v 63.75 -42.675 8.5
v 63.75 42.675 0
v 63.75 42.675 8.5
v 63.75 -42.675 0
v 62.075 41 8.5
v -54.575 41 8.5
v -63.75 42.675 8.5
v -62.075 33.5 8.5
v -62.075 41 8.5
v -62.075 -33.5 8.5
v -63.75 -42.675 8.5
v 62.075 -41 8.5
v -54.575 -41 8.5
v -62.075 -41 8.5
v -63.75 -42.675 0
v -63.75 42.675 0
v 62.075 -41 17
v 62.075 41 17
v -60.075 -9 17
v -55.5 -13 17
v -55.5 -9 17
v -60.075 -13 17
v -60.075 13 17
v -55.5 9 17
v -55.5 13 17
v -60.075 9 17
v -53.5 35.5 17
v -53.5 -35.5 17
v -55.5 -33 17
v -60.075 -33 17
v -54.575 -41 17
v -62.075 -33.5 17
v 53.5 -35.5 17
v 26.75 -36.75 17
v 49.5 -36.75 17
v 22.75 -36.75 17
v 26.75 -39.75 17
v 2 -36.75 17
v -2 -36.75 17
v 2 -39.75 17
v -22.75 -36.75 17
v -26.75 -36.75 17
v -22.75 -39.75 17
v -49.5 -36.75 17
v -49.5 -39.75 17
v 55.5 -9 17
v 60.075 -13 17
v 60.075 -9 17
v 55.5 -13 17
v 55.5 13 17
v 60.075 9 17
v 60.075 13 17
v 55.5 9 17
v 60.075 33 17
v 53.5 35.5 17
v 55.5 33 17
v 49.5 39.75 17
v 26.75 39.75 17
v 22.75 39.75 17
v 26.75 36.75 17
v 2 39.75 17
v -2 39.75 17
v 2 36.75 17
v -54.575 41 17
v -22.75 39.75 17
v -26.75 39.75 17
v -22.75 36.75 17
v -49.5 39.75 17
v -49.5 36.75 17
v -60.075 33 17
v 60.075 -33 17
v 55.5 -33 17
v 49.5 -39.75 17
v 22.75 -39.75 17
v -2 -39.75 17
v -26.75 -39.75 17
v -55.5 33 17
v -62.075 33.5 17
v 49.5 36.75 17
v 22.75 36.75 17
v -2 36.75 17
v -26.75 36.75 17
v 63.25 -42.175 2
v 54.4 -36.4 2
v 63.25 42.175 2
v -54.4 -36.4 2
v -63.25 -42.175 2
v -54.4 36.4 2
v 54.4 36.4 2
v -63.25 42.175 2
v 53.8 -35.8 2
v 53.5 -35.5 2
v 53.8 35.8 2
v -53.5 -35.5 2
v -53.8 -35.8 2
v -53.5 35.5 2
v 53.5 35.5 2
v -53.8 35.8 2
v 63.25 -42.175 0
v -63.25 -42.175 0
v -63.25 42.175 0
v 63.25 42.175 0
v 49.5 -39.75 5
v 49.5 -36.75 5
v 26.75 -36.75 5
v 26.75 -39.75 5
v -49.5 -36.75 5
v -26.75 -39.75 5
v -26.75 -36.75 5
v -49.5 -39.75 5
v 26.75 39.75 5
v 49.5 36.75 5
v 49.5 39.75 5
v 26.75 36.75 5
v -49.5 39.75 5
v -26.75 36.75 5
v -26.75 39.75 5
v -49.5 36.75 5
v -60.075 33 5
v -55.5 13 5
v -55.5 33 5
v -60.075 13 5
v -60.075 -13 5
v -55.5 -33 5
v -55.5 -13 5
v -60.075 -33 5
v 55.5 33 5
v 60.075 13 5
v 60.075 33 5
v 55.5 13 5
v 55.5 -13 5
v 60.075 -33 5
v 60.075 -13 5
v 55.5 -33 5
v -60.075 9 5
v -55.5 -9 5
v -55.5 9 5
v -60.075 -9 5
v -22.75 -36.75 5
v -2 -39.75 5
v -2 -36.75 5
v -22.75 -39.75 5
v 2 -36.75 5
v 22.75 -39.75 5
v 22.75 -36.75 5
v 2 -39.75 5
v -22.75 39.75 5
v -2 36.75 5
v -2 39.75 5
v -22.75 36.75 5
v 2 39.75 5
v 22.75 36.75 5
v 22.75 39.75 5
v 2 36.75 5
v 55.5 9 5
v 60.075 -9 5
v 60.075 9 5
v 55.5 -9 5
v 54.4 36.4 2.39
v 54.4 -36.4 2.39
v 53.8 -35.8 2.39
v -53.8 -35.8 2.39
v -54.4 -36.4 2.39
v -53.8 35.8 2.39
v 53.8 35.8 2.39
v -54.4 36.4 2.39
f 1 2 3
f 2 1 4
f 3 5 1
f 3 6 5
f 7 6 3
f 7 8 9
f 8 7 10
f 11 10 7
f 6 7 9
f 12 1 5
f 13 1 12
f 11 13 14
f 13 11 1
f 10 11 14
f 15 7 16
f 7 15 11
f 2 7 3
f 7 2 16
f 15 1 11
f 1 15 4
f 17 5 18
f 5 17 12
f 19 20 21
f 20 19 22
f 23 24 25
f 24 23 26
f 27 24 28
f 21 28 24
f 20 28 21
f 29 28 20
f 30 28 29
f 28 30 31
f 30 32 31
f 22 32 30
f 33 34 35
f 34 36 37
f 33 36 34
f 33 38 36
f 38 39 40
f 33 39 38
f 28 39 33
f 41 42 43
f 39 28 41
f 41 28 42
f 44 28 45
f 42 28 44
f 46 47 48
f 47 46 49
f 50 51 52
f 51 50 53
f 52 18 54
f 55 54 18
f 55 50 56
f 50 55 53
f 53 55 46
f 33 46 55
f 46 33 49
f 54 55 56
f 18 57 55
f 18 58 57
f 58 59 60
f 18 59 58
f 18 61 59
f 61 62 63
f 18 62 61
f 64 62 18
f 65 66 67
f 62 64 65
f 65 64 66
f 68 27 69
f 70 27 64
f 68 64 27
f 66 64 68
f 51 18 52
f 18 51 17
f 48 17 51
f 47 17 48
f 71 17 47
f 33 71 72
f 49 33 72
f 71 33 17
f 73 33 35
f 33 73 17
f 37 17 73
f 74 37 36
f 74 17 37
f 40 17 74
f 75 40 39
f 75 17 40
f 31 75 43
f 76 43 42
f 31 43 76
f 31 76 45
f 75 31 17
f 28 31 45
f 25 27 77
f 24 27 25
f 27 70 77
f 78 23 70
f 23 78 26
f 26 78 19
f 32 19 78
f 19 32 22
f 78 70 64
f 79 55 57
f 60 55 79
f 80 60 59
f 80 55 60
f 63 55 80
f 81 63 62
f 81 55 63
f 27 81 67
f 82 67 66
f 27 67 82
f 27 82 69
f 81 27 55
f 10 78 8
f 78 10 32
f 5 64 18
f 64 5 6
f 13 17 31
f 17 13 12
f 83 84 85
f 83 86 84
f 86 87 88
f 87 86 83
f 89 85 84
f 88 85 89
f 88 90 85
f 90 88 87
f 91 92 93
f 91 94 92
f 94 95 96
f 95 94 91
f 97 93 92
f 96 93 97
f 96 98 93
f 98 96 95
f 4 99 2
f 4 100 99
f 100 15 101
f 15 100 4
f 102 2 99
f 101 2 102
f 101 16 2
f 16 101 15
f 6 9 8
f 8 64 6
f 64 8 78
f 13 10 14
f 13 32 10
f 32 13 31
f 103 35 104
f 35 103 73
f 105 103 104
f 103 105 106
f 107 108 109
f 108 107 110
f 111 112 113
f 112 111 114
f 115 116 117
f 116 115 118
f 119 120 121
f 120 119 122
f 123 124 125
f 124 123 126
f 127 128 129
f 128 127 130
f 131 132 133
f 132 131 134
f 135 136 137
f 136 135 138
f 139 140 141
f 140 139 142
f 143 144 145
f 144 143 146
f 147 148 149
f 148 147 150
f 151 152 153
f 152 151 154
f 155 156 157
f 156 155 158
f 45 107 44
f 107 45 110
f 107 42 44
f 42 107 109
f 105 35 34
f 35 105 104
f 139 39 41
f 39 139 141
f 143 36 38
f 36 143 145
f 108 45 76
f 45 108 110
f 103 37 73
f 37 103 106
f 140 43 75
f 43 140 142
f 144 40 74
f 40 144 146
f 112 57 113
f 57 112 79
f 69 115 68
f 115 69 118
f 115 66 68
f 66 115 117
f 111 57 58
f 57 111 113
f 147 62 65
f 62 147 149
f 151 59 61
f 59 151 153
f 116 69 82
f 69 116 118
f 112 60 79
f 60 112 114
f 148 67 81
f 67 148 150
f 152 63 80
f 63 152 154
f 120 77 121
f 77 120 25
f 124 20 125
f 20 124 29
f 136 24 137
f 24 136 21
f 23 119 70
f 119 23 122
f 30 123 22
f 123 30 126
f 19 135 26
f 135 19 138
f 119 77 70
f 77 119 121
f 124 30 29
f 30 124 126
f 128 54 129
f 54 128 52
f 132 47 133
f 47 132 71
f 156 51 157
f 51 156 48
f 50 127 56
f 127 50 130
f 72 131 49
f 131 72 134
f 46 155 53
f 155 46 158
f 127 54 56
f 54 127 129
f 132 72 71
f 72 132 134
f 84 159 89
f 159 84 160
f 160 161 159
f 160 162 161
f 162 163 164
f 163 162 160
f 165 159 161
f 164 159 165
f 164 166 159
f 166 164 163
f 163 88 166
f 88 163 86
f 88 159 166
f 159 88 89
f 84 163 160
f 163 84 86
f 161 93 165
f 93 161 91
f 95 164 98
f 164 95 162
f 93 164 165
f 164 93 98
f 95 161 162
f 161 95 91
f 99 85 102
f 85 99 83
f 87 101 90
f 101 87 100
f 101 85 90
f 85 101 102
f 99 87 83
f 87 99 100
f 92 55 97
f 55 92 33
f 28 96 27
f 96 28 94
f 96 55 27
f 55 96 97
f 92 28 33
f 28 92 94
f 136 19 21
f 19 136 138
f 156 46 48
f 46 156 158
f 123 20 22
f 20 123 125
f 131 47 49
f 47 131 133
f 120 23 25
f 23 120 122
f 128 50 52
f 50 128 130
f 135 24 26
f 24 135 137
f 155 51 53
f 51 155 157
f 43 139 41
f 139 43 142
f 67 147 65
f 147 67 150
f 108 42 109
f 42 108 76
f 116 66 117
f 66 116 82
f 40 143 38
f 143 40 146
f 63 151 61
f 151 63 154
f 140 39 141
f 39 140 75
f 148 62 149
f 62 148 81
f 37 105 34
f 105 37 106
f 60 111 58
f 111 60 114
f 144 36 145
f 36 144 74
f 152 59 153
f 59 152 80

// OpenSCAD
// Generated by SolidPython 1.1.3 on 2025-03-12 20:26:16


difference() {
	difference() {
		union() {
			translate(v = [0, 22.0000000000, 0]) {
				translate(v = [0, -33.0000000000, 11.0000000000]) {
					cube(center = true, size = [124.1500000000, 4, 12]);
				}
			}
			translate(v = [0, 44.0000000000, 0]) {
				translate(v = [0, -33.0000000000, 11.0000000000]) {
					cube(center = true, size = [124.1500000000, 4, 12]);
				}
			}
			translate(v = [24.7500000000, 0, 0]) {
				translate(v = [-49.5000000000, 0, 11.0000000000]) {
					cube(center = true, size = [4, 82, 12]);
				}
			}
			translate(v = [49.5000000000, 0, 0]) {
				translate(v = [-49.5000000000, 0, 11.0000000000]) {
					cube(center = true, size = [4, 82, 12]);
				}
			}
			translate(v = [74.2500000000, 0, 0]) {
				translate(v = [-49.5000000000, 0, 11.0000000000]) {
					cube(center = true, size = [4, 82, 12]);
				}
			}
			difference() {
				difference() {
					difference() {
						difference() {
							union() {
								difference() {
									union() {
										translate(v = [0, 0, 4.2500000000]) {
											cube(center = true, size = [127.5000000000, 85.3500000000, 8.5000000000]);
										}
										translate(v = [0, 0, 12.7500000000]) {
											cube(center = true, size = [124.1500000000, 82, 8.5000000000]);
										}
									}
									translate(v = [0, 0, 1.0000000000]) {
										cube(center = true, size = [127.5000000000, 85.3500000000, 2]);
									}
								}
								intersection() {
									difference() {
										translate(v = [0, 0, 1.0000000000]) {
											cube(center = true, size = [127.5000000000, 85.3500000000, 2]);
										}
										translate(v = [0, 0, 1.0000000000]) {
											cube(center = true, size = [126.5000000000, 84.3500000000, 2]);
										}
									}
									union() {
										translate(v = [-63.7500000000, 42.6750000000, 0]) {
											translate(v = [0, 0, 1.0000000000]) {
												cube(center = true, size = [127.5000000000, 85.3500000000, 2]);
											}
										}
										translate(v = [63.7500000000, 42.6750000000, 0]) {
											translate(v = [0, 0, 1.0000000000]) {
												cube(center = true, size = [127.5000000000, 85.3500000000, 2]);
											}
										}
										translate(v = [-63.7500000000, -42.6750000000, 0]) {
											translate(v = [0, 0, 1.0000000000]) {
												cube(center = true, size = [127.5000000000, 85.3500000000, 2]);
											}
										}
										translate(v = [63.7500000000, -42.6750000000, 0]) {
											translate(v = [0, 0, 1.0000000000]) {
												cube(center = true, size = [127.5000000000, 85.3500000000, 2]);
											}
										}
									}
								}
							}
							union() {
								translate(v = [-62.0750000000, 41.0000000000, 8.5000000000]) {
									translate(v = [0, -7.5000000000, 0]) {
										linear_extrude(height = 8.5000000000) {
											polygon(points = [[0, 0], [0, 7.5000000000], [0, 7.5000000000], [0, 7.5000000000], [7.5000000000, 7.5000000000], [7.5000000000, 7.5000000000]]);
										}
									}
								}
								translate(v = [-62.0750000000, -41.0000000000, 8.5000000000]) {
									translate(v = [7.5000000000, 0, 0]) {
										rotate(a = 90) {
											linear_extrude(height = 8.5000000000) {
												polygon(points = [[0, 0], [0, 7.5000000000], [0, 7.5000000000], [0, 7.5000000000], [7.5000000000, 7.5000000000], [7.5000000000, 7.5000000000]]);
											}
										}
									}
								}
							}
						}
						translate(v = [0, 0, 8.5000000000]) {
							cube(center = true, size = [107, 71, 17.0000000000]);
						}
					}
					union() {
						translate(v = [0, -38.2500000000, 0]) {
							translate(v = [0, 0, 11.0000000000]) {
								cube(center = true, size = [99, 3.0000000000, 12]);
							}
						}
						translate(v = [0, 38.2500000000, 0]) {
							translate(v = [0, 0, 11.0000000000]) {
								cube(center = true, size = [99, 3.0000000000, 12]);
							}
						}
						translate(v = [-57.7875000000, 0, 0]) {
							translate(v = [0, 0, 11.0000000000]) {
								cube(center = true, size = [4.5750000000, 66, 12]);
							}
						}
						translate(v = [57.7875000000, 0, 0]) {
							translate(v = [0, 0, 11.0000000000]) {
								cube(center = true, size = [4.5750000000, 66, 12]);
							}
						}
					}
				}
				union() {
					translate(v = [0, 0, 17.0000000000]) {
						cube(center = true, size = [115.5750000000, 66, 0]);
					}
					translate(v = [0, 0, 17.0000000000]) {
						cube(center = true, size = [99, 76.5000000000, 0]);
					}
				}
			}
		}
		translate(v = [0, 0, 8.5000000000]) {
			cube(center = true, size = [107, 71, 17.0000000000]);
		}
	}
	translate(v = [0, 0, 2.1900000000]) {
		difference() {
			cube(center = true, size = [108.8000000000, 72.8000000000, 0.4000000000]);
			cube(center = true, size = [107.6000000000, 71.6000000000, 0.4000000000]);
		}
	}
}
/***********************************************
*********      SolidPython code:      **********
************************************************
 
import solid
import numpy as np
import os.path as osp
import os
import math

"""
96-Well Plate with Reservoirs Generator
This script generates a 3D model of a 96-well plate with configurable reservoirs.
It uses solid-python to generate OpenSCAD code for 3D printing.
"""

def get_default_config():
    """
    Returns a dictionary containing default configuration parameters.
    
    Returns:
        dict: Default configuration parameters for the plate model
    """
    version = "print_hips"
    base_name = "96_well_plate_reservoirs_"+version
    config = {
        # Version and naming
        "version": version,
        "base_name": base_name,
        "base_path": osp.join("./plates/",base_name),
        
        # Basic plate dimensions
        "plate_size_outer": [127.5, 85.35],
        "plate_size_inner": [124.15, 82],
        "plate_height_outer": 8.5,
        "plate_height_inner": 8.5,
        "plate_under_depth": 2,
        "skirt_thickness": 1,
        
        # Corner dimensions
        "corner_x": 7.5,
        "corner_y": 7.5,
        
        # Grid configuration
        "grid_size": [1, 1],
        
        # Device dimensions
        "device_dims": [107, 71],
        
        # Reservoir configuration
        "reservoir_x_tol": 8,
        "reservoir_y_tol": 5,
        "reservoir_depth": 12,
        "reservoir_number_x": 3,
        "reservoir_number_y": 4,
        "reservoir_wall_thickness": 4,
        "lower_wall_height": 0,
        
        # Release holes configuration
        "release_holes": False,
        "release_radius": 2.5,
        
        # Groove configuration
        "groove_width": 0.6,  # Width of the groove (gw)
        "groove_depth": 0.4,  # Depth of the groove (gd)
        "gap_device": 0.3     # Distance from device slot to groove
    }
    
    # Derived values
    config["plate_height"] = config["plate_height_inner"] + config["plate_height_outer"]
    config["skirt_hole_dims"] = config["plate_size_outer"].copy()
    
    # Calculate reservoir dimensions based on device dimensions
    config["reservoir_dims_x"] = [
        config["device_dims"][0] - config["reservoir_x_tol"],
        (config["plate_size_inner"][1] - config["device_dims"][1] - config["reservoir_y_tol"]) / 2.0
    ]
    
    config["reservoir_dims_y"] = [
        (config["plate_size_inner"][0] - config["device_dims"][0] - config["reservoir_x_tol"]) / 2.0,
        config["device_dims"][1] - config["reservoir_y_tol"]
    ]
    
    return config

def save_model(model, base_path, base_name):
    """
    Saves the 3D model to an OpenSCAD file.
    
    Args:
        model: The solid-python 3D model
        base_path (str): Directory path to save the model
        base_name (str): Filename base for the model
    """
    if not osp.exists(base_path):
        os.makedirs(base_path)
    scad_path = osp.join(base_path, base_name + ".scad")
    solid.scad_render_to_file(model, osp.join(scad_path))

def center_unit_array(model, dims, grid_size):
    """
    Centers a unit array in the given grid.
    
    Args:
        model: The solid-python 3D model
        dims (list): Dimensions of the unit
        grid_size (list): Grid size [x, y]
        
    Returns:
        The centered model
    """
    model = solid.translate([dims[0]/2.0, dims[1]/2.0, 0])(model)
    model = solid.translate([
        -dims[0]*(grid_size[0]/2.0),
        -dims[1]*(grid_size[1]/2.0), 0
    ])(model)
    return model

def corners_from_x_y(x, y):
    """
    Generate corner coordinates from x and y dimensions.
    
    Args:
        x (float): X dimension
        y (float): Y dimension
        
    Returns:
        list: List of corner coordinates
    """
    return [
        [-x/2.0, y/2.0],
        [x/2.0, y/2.0],
        [-x/2.0, -y/2.0],
        [x/2.0, -y/2.0]
    ]

def create_plate_base(config):
    """
    Creates the base plate structure.
    
    Args:
        config (dict): Configuration parameters
        
    Returns:
        The base plate model
    """
    plate_size_outer = config["plate_size_outer"]
    plate_size_inner = config["plate_size_inner"]
    plate_height_inner = config["plate_height_inner"]
    plate_height_diff = config["plate_height"] - plate_height_inner
    
    # Create outer plate as base
    plate = solid.cube((*plate_size_outer, plate_height_diff), center=True)
    plate = solid.translate([0, 0, plate_height_diff/2.0])(plate)
    
    # Create inner plate on top
    plate_inner = solid.cube((*plate_size_inner, plate_height_inner), center=True)
    plate_inner = solid.translate([0, 0, plate_height_inner/2.0 + plate_height_diff])(plate_inner)
    
    # Combine plates
    plate = solid.union()(plate, plate_inner)
    
    return plate

def create_plate_skirt(config):
    """
    Creates the skirt for the plate.
    
    Args:
        config (dict): Configuration parameters
        
    Returns:
        The plate skirt model
    """
    plate_size_outer = config["plate_size_outer"]
    plate_under_depth = config["plate_under_depth"]
    skirt_thickness = config["skirt_thickness"]
    skirt_hole_dims = config["skirt_hole_dims"]
    
    # Create removal shapes for skirt
    plate_under_remove_out = solid.cube((*plate_size_outer, plate_under_depth), center=True)
    plate_under_remove_out = solid.translate([0, 0, plate_under_depth/2.0])(plate_under_remove_out)
    
    plate_under_remove_in = solid.cube((
        plate_size_outer[0] - skirt_thickness, 
        plate_size_outer[1] - skirt_thickness, 
        plate_under_depth
    ), center=True)
    plate_under_remove_in = solid.translate([0, 0, plate_under_depth/2.0])(plate_under_remove_in)
    
    plate_under_remove = solid.difference()(plate_under_remove_out, plate_under_remove_in)
    
    # Create corner removal
    plate_under_remove_corner = solid.cube((*skirt_hole_dims, plate_under_depth), center=True)
    plate_under_remove_corner = solid.translate([0, 0, plate_under_depth/2.0])(plate_under_remove_corner)
    
    plate_corners_pos = corners_from_x_y(*plate_size_outer)
    plate_under_remove_corners = []
    
    for corner_pos in plate_corners_pos:
        temp_corner = solid.translate([*corner_pos, 0])(plate_under_remove_corner)
        plate_under_remove_corners.append(temp_corner)
    
    corners_remove = solid.union()(*plate_under_remove_corners)
    skirt = solid.intersection()(plate_under_remove, corners_remove)
    
    return skirt, plate_under_remove_out

def create_corners(config):
    """
    Creates the corners for the plate.
    
    Args:
        config (dict): Configuration parameters
        
    Returns:
        The corners model
    """
    plate_size_inner = config["plate_size_inner"]
    plate_height_inner = config["plate_height_inner"]
    plate_height_diff = config["plate_height"] - plate_height_inner
    corner_x = config["corner_x"]
    corner_y = config["corner_y"]
    
    # Define corner points
    corner_points = [
        [0, 0, 0],
        [0, corner_y, 10],
        [0, corner_y, 0],
        [0, corner_y, 10],
        [corner_x, corner_y, 10],
        [corner_x, corner_y, 0]
    ]
    
    # Create corner polygon
    corner = solid.polygon(points=corner_points)()
    corner = solid.linear_extrude(height=plate_height_inner)(corner)
    
    # Create top-left corner
    corner_top_left = corner
    corner_top_left = solid.translate([0, -corner_y, 0])(corner_top_left)
    corner_top_left = solid.translate([
        -plate_size_inner[0]/2.0, 
        plate_size_inner[1]/2.0, 
        plate_height_diff
    ])(corner_top_left)
    
    # Create bottom-left corner
    corner_bottom_left = solid.rotate(90)(corner)
    corner_bottom_left = solid.translate([corner_x, 0, 0])(corner_bottom_left)
    corner_bottom_left = solid.translate([
        -plate_size_inner[0]/2.0, 
        -plate_size_inner[1]/2.0, 
        plate_height_diff
    ])(corner_bottom_left)
    
    # Combine corners
    corners = solid.union()(corner_top_left, corner_bottom_left)
    
    return corners

def create_device_slot(config):
    """
    Creates the device slot for the plate.
    
    Args:
        config (dict): Configuration parameters
        
    Returns:
        The device slot model
    """
    device_dims = config["device_dims"]
    plate_height = config["plate_height"]
    
    device_slot = solid.cube((*device_dims, plate_height), center=True)
    device_slot = solid.translate([0, 0, plate_height/2.0])(device_slot)
    
    return device_slot

def create_device_groove(config):
    """
    Creates a groove around the device slot.
    
    Args:
        config (dict): Configuration parameters
        
    Returns:
        The groove model to be subtracted from the plate
    """
    device_dims = config["device_dims"]
    plate_height = config["plate_height"]
    groove_width = config["groove_width"]
    groove_depth = config["groove_depth"]
    gap_device = config["gap_device"]
    plate_under_depth = config["plate_under_depth"]
    
    # Calculate inner and outer dimensions for the groove
    inner_dims = [
        device_dims[0] + (2 * gap_device),
        device_dims[1] + (2 * gap_device),
        groove_depth
    ]
    
    outer_dims = [
        inner_dims[0] + 2 * groove_width,
        inner_dims[1] + 2 * groove_width,
        groove_depth
    ]
    
    # Create outer cube
    outer_cube = solid.cube(outer_dims, center=True)
    
    # Create inner cube (to be subtracted)
    inner_cube = solid.cube(inner_dims, center=True)
    
    # Create groove by subtracting inner from outer
    groove = solid.difference()(outer_cube, inner_cube)
    
    # Position the groove at the correct height
    # The top of the groove should be at the plate height
    groove = solid.translate([0, 0, plate_under_depth + groove_depth/2.0 -0.01])(groove)
    #groove = solid.translate([0, 0, plate_height - groove_depth/2.0])(groove)
    
    return groove

def create_reservoirs(config):
    """
    Creates the reservoirs for the plate.
    
    Args:
        config (dict): Configuration parameters
        
    Returns:
        The reservoirs model and lower wall model
    """
    plate_size_inner = config["plate_size_inner"]
    device_dims = config["device_dims"]
    reservoir_dims_x = config["reservoir_dims_x"]
    reservoir_dims_y = config["reservoir_dims_y"]
    reservoir_depth = config["reservoir_depth"]
    plate_height = config["plate_height"]
    lower_wall_height = config["lower_wall_height"]
    
    # Create X and Y reservoirs
    reservoir_x = solid.cube((*reservoir_dims_x, reservoir_depth), center=True)
    reservoir_x = solid.translate([0, 0, plate_height - reservoir_depth/2.0])(reservoir_x)
    
    reservoir_y = solid.cube((*reservoir_dims_y, reservoir_depth), center=True)
    reservoir_y = solid.translate([0, 0, plate_height - reservoir_depth/2.0])(reservoir_y)
    
    # Calculate positions
    plate_top_x_thickness = (plate_size_inner[0] - device_dims[0]) / 2.0
    x_pos_reservoir = plate_size_inner[0] / 2.0 - plate_top_x_thickness / 2.0
    
    plate_top_y_thickness = (plate_size_inner[1] - device_dims[1]) / 2.0
    y_pos_reservoir = plate_size_inner[1] / 2.0 - plate_top_y_thickness / 2.0
    
    # Position reservoirs
    reservoir_x_top = solid.translate([0, y_pos_reservoir, 0])(reservoir_x)
    reservoir_x_bottom = solid.translate([0, -y_pos_reservoir, 0])(reservoir_x)
    reservoir_y_left = solid.translate([x_pos_reservoir, 0, 0])(reservoir_y)
    reservoir_y_right = solid.translate([-x_pos_reservoir, 0, 0])(reservoir_y)
    
    # Combine reservoirs
    reservoirs = solid.union()(
        reservoir_x_bottom, 
        reservoir_x_top, 
        reservoir_y_right, 
        reservoir_y_left
    )
    
    # Create lower wall
    reservoir_lower_wall_x = solid.cube((
        reservoir_dims_x[0], 
        y_pos_reservoir * 2, 
        lower_wall_height
    ), center=True)
    reservoir_lower_wall_x = solid.translate([
        0, 0, plate_height - lower_wall_height / 2.0
    ])(reservoir_lower_wall_x)
    
    reservoir_lower_wall_y = solid.cube((
        x_pos_reservoir * 2, 
        reservoir_dims_y[1], 
        lower_wall_height
    ), center=True)
    reservoir_lower_wall_y = solid.translate([
        0, 0, plate_height - lower_wall_height / 2.0
    ])(reservoir_lower_wall_y)
    
    reservoir_lower_wall = solid.union()(
        reservoir_lower_wall_y, 
        reservoir_lower_wall_x
    )
    
    return reservoirs, reservoir_lower_wall, x_pos_reservoir, y_pos_reservoir

def create_reservoir_walls(config, x_pos_reservoir, y_pos_reservoir):
    """
    Creates the walls for the reservoirs.
    
    Args:
        config (dict): Configuration parameters
        x_pos_reservoir (float): X position of reservoir
        y_pos_reservoir (float): Y position of reservoir
        
    Returns:
        The reservoir walls models
    """
    plate_size_inner = config["plate_size_inner"]
    reservoir_dims_x = config["reservoir_dims_x"]
    reservoir_dims_y = config["reservoir_dims_y"]
    reservoir_wall_thickness = config["reservoir_wall_thickness"]
    reservoir_depth = config["reservoir_depth"]
    reservoir_number_x = config["reservoir_number_x"]
    reservoir_number_y = config["reservoir_number_y"]
    plate_height = config["plate_height"]
    
    # Create X wall
    reservoir_x_wall = solid.cube((
        plate_size_inner[0], 
        reservoir_wall_thickness, 
        reservoir_depth
    ), center=True)
    reservoir_x_wall = solid.translate([
        0, 
        -reservoir_dims_y[1] / 2.0, 
        plate_height - reservoir_depth / 2.0
    ])(reservoir_x_wall)
    
    # Create Y wall
    reservoir_y_wall = solid.cube((
        reservoir_wall_thickness, 
        plate_size_inner[1], 
        reservoir_depth
    ), center=True)
    reservoir_y_wall = solid.translate([
        -reservoir_dims_x[0] / 2.0, 
        0, 
        plate_height - reservoir_depth / 2.0
    ])(reservoir_y_wall)
    
    # Calculate spacings
    spacing_x = reservoir_dims_y[1] / reservoir_number_x
    spacing_y = reservoir_dims_x[0] / reservoir_number_y
    
    # Create multiple X walls
    reservoir_x_walls = []
    for i in range(reservoir_number_x - 1):
        reservoir_x_walls.append(
            solid.translate([0, spacing_x * (i + 1), 0])(reservoir_x_wall)
        )
    
    # Create multiple Y walls
    reservoir_y_walls = []
    for i in range(reservoir_number_y - 1):
        reservoir_y_walls.append(
            solid.translate([spacing_y * (i + 1), 0, 0])(reservoir_y_wall)
        )
    
    return reservoir_x_walls, reservoir_y_walls, spacing_x, spacing_y

def create_release_holes(config, spacing_x, spacing_y):
    """
    Creates release holes for the plate if enabled.
    
    Args:
        config (dict): Configuration parameters
        spacing_x (float): X spacing between holes
        spacing_y (float): Y spacing between holes
        
    Returns:
        The release holes model or None if disabled
    """
    if not config["release_holes"]:
        return None
        
    plate_size_inner = config["plate_size_inner"]
    reservoir_number_x = config["reservoir_number_x"]
    reservoir_number_y = config["reservoir_number_y"]
    release_radius = config["release_radius"]
    reservoir_dims_x = config["reservoir_dims_x"]
    reservoir_dims_y = config["reservoir_dims_y"]
    plate_height = config["plate_height"]
    
    # Create X release hole
    release_x = solid.cylinder(r=release_radius, h=plate_size_inner[0], segments=64, center=True)
    release_x = solid.rotate([0, 90, 0])(release_x)
    release_x = solid.translate([0, -spacing_x / 2.0, 0])(release_x)
    
    # Create Y release hole
    release_y = solid.cylinder(r=release_radius, h=plate_size_inner[1], segments=64, center=True)
    release_y = solid.rotate([90, 0, 0])(release_y)
    release_y = solid.translate([-spacing_y / 2.0, 0, 0])(release_y)
    
    # Position release holes
    release_holes = []
    release_x = solid.translate([0, -reservoir_dims_y[1] / 2.0, 0])(release_x)
    
    for i in range(reservoir_number_x):
        release_holes.append(solid.translate([0, spacing_x * (i + 1), 0])(release_x))
    
    release_y = solid.translate([-reservoir_dims_x[0] / 2.0, 0, 0])(release_y)
    
    for i in range(reservoir_number_y):
        release_holes.append(solid.translate([spacing_y * (i + 1), 0, 0])(release_y))
    
    # Combine and position release holes
    release_holes = solid.union()(*release_holes)
    release_holes = solid.translate([0, 0, plate_height])(release_holes)
    
    return release_holes

def create_96_well_plate(config=None):
    """
    Creates a complete 96-well plate with reservoirs.
    
    Args:
        config (dict, optional): Configuration parameters. If None, default config is used.
        
    Returns:
        The complete plate model
    """
    if config is None:
        config = get_default_config()
    
    # Create base plate
    plate = create_plate_base(config)
    
    # Create skirt
    skirt, plate_under_remove_out = create_plate_skirt(config)
    plate = solid.difference()(plate, plate_under_remove_out)
    plate = solid.union()(plate, skirt)
    
    # Create corners
    corners = create_corners(config)
    plate = solid.difference()(plate, corners)
    
    # Create device slot
    device_slot = create_device_slot(config)
    plate = solid.difference()(plate, device_slot)
    
    
    # Create reservoirs
    reservoirs, reservoir_lower_wall, x_pos_reservoir, y_pos_reservoir = create_reservoirs(config)
    plate = solid.difference()(plate, reservoirs)
    plate = solid.difference()(plate, reservoir_lower_wall)
    
    # Create reservoir walls
    reservoir_x_walls, reservoir_y_walls, spacing_x, spacing_y = create_reservoir_walls(
        config, x_pos_reservoir, y_pos_reservoir
    )
    
    # Create release holes if enabled
    release_holes = create_release_holes(config, spacing_x, spacing_y)
    if release_holes is not None:
        plate = solid.difference()(plate, release_holes)
    
    # Combine all walls with plate
    plate = solid.union()(
        *reservoir_x_walls,
        *reservoir_y_walls,
        plate
    )
    
    # Final device slot cut
    plate = solid.difference()(plate, device_slot)

    # Create device groove around the slot
    device_groove = create_device_groove(config)
    plate = solid.difference()(plate, device_groove)
    #plate = solid.union()(plate, device_groove)
    
    return plate

def main():
    """
    Main function to generate and save the plate model.
    """
    # Load default configuration
    config = get_default_config()
    
    # Create the plate
    plate = create_96_well_plate(config)
    
    # Save the model
    save_model(plate, config["base_path"], config["base_name"])

if __name__ == "__main__":
    # Import optional modules only when executing as main script
    try:
        chamfer_extrude = solid.import_scad("./chamfer_extrude.scad")
        chamfer_extrude = chamfer_extrude.chamfer_extrude
    except Exception as e:
        print(f"Warning: Could not import chamfer_extrude: {e}")
    
    main()

 
 
************************************************/
